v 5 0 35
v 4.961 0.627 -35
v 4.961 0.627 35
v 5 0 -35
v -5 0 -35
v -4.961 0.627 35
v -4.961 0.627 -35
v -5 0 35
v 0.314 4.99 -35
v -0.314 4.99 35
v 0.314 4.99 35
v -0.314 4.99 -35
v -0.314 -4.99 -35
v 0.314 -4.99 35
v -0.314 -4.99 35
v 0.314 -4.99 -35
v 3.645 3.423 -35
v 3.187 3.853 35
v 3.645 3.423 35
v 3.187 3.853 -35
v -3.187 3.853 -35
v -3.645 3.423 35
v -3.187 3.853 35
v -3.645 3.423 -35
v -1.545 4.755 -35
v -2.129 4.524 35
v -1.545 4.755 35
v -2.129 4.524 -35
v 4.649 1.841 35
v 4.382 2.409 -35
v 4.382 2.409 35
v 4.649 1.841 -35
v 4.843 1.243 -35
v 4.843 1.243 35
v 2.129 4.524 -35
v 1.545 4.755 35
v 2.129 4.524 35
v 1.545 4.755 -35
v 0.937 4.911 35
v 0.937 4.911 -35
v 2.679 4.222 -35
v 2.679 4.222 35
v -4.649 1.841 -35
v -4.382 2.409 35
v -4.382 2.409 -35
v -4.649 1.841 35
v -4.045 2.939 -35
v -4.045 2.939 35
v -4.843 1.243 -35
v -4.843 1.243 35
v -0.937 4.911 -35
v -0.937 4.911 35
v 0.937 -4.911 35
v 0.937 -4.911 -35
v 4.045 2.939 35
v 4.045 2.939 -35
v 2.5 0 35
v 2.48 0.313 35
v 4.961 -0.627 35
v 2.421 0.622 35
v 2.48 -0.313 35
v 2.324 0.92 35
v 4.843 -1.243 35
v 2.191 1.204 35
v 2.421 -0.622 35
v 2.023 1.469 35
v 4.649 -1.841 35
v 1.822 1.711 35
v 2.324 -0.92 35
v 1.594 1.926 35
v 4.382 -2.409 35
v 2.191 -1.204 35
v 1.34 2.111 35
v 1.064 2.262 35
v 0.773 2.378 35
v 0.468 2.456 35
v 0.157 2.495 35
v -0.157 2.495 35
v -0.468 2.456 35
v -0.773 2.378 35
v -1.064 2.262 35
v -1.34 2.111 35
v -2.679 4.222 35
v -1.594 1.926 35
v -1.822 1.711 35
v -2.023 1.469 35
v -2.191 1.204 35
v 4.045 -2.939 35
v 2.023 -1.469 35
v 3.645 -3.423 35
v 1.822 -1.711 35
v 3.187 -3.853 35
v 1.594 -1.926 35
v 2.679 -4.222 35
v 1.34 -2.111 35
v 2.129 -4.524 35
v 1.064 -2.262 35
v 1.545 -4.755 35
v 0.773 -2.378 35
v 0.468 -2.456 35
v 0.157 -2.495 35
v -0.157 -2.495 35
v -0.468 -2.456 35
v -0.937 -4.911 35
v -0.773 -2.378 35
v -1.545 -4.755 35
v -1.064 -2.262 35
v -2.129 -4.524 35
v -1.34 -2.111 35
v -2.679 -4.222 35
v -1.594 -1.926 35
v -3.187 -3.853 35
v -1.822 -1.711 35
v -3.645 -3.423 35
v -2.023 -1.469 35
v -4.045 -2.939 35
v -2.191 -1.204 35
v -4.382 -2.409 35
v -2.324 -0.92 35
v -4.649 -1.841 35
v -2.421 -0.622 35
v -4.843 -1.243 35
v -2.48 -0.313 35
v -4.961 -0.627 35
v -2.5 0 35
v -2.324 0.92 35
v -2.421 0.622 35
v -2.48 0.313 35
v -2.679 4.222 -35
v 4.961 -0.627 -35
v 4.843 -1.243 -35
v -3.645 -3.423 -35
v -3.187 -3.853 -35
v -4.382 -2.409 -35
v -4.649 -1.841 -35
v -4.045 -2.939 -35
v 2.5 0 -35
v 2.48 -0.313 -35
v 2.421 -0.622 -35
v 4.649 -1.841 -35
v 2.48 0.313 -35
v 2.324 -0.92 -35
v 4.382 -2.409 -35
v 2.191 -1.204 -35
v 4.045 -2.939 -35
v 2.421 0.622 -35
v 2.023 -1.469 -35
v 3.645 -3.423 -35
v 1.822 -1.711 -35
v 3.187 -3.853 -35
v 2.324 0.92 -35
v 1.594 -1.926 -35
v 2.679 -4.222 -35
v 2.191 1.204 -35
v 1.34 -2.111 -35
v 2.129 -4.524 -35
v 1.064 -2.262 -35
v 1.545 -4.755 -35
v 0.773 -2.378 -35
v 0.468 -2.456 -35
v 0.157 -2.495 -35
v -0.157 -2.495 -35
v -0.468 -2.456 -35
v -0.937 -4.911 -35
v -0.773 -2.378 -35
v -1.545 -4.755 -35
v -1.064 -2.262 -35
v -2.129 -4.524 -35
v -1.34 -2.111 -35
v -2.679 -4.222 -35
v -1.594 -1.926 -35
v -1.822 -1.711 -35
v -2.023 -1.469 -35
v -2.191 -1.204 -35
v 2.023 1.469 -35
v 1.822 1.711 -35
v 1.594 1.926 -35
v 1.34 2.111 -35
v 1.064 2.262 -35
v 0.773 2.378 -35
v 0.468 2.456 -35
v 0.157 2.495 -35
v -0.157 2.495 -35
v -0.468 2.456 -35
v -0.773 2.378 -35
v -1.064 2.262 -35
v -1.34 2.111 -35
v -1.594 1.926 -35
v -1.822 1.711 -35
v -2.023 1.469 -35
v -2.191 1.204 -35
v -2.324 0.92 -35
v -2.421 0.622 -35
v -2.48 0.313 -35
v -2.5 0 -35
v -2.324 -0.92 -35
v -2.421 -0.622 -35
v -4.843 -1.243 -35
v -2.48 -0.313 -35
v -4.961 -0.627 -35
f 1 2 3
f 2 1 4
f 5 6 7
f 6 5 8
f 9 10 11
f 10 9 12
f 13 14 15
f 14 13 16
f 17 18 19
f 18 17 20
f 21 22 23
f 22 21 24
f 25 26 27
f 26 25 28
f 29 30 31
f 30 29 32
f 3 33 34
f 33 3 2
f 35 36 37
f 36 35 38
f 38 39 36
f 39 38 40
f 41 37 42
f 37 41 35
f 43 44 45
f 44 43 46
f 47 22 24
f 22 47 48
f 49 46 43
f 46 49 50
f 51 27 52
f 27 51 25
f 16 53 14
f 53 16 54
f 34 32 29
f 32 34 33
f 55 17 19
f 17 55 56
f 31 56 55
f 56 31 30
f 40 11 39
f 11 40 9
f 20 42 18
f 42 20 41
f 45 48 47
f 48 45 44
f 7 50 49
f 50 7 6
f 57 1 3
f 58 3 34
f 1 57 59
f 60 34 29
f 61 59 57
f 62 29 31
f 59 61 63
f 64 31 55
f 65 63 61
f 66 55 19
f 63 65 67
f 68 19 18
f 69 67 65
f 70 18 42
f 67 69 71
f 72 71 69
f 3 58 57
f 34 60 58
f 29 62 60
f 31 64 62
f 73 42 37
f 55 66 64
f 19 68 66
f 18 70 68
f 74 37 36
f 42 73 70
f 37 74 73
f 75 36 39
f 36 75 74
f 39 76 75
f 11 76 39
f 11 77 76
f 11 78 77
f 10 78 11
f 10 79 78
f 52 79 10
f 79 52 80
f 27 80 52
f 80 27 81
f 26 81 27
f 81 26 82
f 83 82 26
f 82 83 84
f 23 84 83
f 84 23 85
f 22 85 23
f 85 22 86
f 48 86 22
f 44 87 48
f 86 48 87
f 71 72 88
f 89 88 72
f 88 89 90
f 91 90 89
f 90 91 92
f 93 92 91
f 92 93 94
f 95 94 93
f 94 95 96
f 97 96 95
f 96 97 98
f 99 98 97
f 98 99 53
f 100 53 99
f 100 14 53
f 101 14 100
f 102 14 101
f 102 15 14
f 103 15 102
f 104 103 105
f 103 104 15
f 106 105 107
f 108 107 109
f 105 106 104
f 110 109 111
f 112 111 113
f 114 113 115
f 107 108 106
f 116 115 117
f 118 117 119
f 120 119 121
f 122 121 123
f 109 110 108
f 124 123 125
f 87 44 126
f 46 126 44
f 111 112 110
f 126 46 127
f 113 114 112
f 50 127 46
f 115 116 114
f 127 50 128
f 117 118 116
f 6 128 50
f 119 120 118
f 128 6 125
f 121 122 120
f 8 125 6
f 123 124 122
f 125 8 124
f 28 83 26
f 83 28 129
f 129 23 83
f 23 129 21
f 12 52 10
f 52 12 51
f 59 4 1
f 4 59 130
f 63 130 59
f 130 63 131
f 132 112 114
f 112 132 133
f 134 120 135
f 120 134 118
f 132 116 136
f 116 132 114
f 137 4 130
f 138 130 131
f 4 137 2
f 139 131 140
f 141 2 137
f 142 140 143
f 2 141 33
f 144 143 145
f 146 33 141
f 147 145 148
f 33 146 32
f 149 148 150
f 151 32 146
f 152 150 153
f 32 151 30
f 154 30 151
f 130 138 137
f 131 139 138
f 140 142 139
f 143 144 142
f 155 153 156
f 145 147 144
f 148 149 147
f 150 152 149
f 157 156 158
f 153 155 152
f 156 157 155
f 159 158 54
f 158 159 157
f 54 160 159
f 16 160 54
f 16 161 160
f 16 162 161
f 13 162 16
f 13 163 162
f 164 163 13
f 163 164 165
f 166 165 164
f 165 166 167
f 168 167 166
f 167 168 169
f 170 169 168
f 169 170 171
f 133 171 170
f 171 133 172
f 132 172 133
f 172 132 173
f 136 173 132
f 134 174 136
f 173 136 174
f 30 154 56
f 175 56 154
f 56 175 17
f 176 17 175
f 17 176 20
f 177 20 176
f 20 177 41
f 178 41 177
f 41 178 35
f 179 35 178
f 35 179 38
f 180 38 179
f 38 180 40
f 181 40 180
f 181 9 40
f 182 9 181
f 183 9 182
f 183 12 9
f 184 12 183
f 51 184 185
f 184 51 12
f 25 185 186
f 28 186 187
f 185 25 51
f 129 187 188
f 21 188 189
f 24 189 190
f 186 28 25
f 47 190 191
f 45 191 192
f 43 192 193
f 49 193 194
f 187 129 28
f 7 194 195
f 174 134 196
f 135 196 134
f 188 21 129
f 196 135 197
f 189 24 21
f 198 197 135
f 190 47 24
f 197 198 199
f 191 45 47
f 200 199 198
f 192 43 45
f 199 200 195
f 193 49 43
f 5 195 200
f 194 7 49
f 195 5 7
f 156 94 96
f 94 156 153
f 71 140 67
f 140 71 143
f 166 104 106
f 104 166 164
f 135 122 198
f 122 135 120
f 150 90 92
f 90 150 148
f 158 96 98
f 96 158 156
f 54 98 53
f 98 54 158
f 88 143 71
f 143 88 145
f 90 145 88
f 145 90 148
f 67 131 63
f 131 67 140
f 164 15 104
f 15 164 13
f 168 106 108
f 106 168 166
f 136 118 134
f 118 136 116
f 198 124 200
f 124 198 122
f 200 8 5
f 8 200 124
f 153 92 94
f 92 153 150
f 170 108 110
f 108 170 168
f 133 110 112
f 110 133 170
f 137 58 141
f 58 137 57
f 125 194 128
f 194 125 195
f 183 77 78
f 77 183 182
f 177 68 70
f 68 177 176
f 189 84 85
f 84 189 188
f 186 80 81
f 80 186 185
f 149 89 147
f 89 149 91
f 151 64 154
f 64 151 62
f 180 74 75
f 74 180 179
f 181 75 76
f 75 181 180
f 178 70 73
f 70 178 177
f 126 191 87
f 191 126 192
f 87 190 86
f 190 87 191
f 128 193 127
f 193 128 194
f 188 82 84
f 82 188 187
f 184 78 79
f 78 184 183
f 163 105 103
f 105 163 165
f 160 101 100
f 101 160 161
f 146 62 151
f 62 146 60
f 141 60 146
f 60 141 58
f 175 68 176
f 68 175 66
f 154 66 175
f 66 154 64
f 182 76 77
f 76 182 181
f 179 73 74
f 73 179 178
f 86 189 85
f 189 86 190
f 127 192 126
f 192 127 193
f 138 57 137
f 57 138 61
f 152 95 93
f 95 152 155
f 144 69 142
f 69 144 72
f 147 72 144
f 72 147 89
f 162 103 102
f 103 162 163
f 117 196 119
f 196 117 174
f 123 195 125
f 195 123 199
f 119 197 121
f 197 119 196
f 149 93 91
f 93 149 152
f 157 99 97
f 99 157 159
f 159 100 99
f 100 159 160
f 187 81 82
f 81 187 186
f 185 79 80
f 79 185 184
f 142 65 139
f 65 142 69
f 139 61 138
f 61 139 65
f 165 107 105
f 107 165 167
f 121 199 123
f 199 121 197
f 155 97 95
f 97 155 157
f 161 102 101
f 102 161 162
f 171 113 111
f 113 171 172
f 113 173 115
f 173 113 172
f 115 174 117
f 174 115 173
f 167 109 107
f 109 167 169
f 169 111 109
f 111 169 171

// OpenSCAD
$fn = 50;


difference() {
	union() {
		translate(v = [0, 0, -35.0000000000]) {
			cylinder(h = 70, r = 5.0000000000);
		}
	}
	union() {
		translate(v = [0, 0, -100.0000000000]) {
			cylinder(h = 200, r = 2.5000000000);
		}
	}
}
